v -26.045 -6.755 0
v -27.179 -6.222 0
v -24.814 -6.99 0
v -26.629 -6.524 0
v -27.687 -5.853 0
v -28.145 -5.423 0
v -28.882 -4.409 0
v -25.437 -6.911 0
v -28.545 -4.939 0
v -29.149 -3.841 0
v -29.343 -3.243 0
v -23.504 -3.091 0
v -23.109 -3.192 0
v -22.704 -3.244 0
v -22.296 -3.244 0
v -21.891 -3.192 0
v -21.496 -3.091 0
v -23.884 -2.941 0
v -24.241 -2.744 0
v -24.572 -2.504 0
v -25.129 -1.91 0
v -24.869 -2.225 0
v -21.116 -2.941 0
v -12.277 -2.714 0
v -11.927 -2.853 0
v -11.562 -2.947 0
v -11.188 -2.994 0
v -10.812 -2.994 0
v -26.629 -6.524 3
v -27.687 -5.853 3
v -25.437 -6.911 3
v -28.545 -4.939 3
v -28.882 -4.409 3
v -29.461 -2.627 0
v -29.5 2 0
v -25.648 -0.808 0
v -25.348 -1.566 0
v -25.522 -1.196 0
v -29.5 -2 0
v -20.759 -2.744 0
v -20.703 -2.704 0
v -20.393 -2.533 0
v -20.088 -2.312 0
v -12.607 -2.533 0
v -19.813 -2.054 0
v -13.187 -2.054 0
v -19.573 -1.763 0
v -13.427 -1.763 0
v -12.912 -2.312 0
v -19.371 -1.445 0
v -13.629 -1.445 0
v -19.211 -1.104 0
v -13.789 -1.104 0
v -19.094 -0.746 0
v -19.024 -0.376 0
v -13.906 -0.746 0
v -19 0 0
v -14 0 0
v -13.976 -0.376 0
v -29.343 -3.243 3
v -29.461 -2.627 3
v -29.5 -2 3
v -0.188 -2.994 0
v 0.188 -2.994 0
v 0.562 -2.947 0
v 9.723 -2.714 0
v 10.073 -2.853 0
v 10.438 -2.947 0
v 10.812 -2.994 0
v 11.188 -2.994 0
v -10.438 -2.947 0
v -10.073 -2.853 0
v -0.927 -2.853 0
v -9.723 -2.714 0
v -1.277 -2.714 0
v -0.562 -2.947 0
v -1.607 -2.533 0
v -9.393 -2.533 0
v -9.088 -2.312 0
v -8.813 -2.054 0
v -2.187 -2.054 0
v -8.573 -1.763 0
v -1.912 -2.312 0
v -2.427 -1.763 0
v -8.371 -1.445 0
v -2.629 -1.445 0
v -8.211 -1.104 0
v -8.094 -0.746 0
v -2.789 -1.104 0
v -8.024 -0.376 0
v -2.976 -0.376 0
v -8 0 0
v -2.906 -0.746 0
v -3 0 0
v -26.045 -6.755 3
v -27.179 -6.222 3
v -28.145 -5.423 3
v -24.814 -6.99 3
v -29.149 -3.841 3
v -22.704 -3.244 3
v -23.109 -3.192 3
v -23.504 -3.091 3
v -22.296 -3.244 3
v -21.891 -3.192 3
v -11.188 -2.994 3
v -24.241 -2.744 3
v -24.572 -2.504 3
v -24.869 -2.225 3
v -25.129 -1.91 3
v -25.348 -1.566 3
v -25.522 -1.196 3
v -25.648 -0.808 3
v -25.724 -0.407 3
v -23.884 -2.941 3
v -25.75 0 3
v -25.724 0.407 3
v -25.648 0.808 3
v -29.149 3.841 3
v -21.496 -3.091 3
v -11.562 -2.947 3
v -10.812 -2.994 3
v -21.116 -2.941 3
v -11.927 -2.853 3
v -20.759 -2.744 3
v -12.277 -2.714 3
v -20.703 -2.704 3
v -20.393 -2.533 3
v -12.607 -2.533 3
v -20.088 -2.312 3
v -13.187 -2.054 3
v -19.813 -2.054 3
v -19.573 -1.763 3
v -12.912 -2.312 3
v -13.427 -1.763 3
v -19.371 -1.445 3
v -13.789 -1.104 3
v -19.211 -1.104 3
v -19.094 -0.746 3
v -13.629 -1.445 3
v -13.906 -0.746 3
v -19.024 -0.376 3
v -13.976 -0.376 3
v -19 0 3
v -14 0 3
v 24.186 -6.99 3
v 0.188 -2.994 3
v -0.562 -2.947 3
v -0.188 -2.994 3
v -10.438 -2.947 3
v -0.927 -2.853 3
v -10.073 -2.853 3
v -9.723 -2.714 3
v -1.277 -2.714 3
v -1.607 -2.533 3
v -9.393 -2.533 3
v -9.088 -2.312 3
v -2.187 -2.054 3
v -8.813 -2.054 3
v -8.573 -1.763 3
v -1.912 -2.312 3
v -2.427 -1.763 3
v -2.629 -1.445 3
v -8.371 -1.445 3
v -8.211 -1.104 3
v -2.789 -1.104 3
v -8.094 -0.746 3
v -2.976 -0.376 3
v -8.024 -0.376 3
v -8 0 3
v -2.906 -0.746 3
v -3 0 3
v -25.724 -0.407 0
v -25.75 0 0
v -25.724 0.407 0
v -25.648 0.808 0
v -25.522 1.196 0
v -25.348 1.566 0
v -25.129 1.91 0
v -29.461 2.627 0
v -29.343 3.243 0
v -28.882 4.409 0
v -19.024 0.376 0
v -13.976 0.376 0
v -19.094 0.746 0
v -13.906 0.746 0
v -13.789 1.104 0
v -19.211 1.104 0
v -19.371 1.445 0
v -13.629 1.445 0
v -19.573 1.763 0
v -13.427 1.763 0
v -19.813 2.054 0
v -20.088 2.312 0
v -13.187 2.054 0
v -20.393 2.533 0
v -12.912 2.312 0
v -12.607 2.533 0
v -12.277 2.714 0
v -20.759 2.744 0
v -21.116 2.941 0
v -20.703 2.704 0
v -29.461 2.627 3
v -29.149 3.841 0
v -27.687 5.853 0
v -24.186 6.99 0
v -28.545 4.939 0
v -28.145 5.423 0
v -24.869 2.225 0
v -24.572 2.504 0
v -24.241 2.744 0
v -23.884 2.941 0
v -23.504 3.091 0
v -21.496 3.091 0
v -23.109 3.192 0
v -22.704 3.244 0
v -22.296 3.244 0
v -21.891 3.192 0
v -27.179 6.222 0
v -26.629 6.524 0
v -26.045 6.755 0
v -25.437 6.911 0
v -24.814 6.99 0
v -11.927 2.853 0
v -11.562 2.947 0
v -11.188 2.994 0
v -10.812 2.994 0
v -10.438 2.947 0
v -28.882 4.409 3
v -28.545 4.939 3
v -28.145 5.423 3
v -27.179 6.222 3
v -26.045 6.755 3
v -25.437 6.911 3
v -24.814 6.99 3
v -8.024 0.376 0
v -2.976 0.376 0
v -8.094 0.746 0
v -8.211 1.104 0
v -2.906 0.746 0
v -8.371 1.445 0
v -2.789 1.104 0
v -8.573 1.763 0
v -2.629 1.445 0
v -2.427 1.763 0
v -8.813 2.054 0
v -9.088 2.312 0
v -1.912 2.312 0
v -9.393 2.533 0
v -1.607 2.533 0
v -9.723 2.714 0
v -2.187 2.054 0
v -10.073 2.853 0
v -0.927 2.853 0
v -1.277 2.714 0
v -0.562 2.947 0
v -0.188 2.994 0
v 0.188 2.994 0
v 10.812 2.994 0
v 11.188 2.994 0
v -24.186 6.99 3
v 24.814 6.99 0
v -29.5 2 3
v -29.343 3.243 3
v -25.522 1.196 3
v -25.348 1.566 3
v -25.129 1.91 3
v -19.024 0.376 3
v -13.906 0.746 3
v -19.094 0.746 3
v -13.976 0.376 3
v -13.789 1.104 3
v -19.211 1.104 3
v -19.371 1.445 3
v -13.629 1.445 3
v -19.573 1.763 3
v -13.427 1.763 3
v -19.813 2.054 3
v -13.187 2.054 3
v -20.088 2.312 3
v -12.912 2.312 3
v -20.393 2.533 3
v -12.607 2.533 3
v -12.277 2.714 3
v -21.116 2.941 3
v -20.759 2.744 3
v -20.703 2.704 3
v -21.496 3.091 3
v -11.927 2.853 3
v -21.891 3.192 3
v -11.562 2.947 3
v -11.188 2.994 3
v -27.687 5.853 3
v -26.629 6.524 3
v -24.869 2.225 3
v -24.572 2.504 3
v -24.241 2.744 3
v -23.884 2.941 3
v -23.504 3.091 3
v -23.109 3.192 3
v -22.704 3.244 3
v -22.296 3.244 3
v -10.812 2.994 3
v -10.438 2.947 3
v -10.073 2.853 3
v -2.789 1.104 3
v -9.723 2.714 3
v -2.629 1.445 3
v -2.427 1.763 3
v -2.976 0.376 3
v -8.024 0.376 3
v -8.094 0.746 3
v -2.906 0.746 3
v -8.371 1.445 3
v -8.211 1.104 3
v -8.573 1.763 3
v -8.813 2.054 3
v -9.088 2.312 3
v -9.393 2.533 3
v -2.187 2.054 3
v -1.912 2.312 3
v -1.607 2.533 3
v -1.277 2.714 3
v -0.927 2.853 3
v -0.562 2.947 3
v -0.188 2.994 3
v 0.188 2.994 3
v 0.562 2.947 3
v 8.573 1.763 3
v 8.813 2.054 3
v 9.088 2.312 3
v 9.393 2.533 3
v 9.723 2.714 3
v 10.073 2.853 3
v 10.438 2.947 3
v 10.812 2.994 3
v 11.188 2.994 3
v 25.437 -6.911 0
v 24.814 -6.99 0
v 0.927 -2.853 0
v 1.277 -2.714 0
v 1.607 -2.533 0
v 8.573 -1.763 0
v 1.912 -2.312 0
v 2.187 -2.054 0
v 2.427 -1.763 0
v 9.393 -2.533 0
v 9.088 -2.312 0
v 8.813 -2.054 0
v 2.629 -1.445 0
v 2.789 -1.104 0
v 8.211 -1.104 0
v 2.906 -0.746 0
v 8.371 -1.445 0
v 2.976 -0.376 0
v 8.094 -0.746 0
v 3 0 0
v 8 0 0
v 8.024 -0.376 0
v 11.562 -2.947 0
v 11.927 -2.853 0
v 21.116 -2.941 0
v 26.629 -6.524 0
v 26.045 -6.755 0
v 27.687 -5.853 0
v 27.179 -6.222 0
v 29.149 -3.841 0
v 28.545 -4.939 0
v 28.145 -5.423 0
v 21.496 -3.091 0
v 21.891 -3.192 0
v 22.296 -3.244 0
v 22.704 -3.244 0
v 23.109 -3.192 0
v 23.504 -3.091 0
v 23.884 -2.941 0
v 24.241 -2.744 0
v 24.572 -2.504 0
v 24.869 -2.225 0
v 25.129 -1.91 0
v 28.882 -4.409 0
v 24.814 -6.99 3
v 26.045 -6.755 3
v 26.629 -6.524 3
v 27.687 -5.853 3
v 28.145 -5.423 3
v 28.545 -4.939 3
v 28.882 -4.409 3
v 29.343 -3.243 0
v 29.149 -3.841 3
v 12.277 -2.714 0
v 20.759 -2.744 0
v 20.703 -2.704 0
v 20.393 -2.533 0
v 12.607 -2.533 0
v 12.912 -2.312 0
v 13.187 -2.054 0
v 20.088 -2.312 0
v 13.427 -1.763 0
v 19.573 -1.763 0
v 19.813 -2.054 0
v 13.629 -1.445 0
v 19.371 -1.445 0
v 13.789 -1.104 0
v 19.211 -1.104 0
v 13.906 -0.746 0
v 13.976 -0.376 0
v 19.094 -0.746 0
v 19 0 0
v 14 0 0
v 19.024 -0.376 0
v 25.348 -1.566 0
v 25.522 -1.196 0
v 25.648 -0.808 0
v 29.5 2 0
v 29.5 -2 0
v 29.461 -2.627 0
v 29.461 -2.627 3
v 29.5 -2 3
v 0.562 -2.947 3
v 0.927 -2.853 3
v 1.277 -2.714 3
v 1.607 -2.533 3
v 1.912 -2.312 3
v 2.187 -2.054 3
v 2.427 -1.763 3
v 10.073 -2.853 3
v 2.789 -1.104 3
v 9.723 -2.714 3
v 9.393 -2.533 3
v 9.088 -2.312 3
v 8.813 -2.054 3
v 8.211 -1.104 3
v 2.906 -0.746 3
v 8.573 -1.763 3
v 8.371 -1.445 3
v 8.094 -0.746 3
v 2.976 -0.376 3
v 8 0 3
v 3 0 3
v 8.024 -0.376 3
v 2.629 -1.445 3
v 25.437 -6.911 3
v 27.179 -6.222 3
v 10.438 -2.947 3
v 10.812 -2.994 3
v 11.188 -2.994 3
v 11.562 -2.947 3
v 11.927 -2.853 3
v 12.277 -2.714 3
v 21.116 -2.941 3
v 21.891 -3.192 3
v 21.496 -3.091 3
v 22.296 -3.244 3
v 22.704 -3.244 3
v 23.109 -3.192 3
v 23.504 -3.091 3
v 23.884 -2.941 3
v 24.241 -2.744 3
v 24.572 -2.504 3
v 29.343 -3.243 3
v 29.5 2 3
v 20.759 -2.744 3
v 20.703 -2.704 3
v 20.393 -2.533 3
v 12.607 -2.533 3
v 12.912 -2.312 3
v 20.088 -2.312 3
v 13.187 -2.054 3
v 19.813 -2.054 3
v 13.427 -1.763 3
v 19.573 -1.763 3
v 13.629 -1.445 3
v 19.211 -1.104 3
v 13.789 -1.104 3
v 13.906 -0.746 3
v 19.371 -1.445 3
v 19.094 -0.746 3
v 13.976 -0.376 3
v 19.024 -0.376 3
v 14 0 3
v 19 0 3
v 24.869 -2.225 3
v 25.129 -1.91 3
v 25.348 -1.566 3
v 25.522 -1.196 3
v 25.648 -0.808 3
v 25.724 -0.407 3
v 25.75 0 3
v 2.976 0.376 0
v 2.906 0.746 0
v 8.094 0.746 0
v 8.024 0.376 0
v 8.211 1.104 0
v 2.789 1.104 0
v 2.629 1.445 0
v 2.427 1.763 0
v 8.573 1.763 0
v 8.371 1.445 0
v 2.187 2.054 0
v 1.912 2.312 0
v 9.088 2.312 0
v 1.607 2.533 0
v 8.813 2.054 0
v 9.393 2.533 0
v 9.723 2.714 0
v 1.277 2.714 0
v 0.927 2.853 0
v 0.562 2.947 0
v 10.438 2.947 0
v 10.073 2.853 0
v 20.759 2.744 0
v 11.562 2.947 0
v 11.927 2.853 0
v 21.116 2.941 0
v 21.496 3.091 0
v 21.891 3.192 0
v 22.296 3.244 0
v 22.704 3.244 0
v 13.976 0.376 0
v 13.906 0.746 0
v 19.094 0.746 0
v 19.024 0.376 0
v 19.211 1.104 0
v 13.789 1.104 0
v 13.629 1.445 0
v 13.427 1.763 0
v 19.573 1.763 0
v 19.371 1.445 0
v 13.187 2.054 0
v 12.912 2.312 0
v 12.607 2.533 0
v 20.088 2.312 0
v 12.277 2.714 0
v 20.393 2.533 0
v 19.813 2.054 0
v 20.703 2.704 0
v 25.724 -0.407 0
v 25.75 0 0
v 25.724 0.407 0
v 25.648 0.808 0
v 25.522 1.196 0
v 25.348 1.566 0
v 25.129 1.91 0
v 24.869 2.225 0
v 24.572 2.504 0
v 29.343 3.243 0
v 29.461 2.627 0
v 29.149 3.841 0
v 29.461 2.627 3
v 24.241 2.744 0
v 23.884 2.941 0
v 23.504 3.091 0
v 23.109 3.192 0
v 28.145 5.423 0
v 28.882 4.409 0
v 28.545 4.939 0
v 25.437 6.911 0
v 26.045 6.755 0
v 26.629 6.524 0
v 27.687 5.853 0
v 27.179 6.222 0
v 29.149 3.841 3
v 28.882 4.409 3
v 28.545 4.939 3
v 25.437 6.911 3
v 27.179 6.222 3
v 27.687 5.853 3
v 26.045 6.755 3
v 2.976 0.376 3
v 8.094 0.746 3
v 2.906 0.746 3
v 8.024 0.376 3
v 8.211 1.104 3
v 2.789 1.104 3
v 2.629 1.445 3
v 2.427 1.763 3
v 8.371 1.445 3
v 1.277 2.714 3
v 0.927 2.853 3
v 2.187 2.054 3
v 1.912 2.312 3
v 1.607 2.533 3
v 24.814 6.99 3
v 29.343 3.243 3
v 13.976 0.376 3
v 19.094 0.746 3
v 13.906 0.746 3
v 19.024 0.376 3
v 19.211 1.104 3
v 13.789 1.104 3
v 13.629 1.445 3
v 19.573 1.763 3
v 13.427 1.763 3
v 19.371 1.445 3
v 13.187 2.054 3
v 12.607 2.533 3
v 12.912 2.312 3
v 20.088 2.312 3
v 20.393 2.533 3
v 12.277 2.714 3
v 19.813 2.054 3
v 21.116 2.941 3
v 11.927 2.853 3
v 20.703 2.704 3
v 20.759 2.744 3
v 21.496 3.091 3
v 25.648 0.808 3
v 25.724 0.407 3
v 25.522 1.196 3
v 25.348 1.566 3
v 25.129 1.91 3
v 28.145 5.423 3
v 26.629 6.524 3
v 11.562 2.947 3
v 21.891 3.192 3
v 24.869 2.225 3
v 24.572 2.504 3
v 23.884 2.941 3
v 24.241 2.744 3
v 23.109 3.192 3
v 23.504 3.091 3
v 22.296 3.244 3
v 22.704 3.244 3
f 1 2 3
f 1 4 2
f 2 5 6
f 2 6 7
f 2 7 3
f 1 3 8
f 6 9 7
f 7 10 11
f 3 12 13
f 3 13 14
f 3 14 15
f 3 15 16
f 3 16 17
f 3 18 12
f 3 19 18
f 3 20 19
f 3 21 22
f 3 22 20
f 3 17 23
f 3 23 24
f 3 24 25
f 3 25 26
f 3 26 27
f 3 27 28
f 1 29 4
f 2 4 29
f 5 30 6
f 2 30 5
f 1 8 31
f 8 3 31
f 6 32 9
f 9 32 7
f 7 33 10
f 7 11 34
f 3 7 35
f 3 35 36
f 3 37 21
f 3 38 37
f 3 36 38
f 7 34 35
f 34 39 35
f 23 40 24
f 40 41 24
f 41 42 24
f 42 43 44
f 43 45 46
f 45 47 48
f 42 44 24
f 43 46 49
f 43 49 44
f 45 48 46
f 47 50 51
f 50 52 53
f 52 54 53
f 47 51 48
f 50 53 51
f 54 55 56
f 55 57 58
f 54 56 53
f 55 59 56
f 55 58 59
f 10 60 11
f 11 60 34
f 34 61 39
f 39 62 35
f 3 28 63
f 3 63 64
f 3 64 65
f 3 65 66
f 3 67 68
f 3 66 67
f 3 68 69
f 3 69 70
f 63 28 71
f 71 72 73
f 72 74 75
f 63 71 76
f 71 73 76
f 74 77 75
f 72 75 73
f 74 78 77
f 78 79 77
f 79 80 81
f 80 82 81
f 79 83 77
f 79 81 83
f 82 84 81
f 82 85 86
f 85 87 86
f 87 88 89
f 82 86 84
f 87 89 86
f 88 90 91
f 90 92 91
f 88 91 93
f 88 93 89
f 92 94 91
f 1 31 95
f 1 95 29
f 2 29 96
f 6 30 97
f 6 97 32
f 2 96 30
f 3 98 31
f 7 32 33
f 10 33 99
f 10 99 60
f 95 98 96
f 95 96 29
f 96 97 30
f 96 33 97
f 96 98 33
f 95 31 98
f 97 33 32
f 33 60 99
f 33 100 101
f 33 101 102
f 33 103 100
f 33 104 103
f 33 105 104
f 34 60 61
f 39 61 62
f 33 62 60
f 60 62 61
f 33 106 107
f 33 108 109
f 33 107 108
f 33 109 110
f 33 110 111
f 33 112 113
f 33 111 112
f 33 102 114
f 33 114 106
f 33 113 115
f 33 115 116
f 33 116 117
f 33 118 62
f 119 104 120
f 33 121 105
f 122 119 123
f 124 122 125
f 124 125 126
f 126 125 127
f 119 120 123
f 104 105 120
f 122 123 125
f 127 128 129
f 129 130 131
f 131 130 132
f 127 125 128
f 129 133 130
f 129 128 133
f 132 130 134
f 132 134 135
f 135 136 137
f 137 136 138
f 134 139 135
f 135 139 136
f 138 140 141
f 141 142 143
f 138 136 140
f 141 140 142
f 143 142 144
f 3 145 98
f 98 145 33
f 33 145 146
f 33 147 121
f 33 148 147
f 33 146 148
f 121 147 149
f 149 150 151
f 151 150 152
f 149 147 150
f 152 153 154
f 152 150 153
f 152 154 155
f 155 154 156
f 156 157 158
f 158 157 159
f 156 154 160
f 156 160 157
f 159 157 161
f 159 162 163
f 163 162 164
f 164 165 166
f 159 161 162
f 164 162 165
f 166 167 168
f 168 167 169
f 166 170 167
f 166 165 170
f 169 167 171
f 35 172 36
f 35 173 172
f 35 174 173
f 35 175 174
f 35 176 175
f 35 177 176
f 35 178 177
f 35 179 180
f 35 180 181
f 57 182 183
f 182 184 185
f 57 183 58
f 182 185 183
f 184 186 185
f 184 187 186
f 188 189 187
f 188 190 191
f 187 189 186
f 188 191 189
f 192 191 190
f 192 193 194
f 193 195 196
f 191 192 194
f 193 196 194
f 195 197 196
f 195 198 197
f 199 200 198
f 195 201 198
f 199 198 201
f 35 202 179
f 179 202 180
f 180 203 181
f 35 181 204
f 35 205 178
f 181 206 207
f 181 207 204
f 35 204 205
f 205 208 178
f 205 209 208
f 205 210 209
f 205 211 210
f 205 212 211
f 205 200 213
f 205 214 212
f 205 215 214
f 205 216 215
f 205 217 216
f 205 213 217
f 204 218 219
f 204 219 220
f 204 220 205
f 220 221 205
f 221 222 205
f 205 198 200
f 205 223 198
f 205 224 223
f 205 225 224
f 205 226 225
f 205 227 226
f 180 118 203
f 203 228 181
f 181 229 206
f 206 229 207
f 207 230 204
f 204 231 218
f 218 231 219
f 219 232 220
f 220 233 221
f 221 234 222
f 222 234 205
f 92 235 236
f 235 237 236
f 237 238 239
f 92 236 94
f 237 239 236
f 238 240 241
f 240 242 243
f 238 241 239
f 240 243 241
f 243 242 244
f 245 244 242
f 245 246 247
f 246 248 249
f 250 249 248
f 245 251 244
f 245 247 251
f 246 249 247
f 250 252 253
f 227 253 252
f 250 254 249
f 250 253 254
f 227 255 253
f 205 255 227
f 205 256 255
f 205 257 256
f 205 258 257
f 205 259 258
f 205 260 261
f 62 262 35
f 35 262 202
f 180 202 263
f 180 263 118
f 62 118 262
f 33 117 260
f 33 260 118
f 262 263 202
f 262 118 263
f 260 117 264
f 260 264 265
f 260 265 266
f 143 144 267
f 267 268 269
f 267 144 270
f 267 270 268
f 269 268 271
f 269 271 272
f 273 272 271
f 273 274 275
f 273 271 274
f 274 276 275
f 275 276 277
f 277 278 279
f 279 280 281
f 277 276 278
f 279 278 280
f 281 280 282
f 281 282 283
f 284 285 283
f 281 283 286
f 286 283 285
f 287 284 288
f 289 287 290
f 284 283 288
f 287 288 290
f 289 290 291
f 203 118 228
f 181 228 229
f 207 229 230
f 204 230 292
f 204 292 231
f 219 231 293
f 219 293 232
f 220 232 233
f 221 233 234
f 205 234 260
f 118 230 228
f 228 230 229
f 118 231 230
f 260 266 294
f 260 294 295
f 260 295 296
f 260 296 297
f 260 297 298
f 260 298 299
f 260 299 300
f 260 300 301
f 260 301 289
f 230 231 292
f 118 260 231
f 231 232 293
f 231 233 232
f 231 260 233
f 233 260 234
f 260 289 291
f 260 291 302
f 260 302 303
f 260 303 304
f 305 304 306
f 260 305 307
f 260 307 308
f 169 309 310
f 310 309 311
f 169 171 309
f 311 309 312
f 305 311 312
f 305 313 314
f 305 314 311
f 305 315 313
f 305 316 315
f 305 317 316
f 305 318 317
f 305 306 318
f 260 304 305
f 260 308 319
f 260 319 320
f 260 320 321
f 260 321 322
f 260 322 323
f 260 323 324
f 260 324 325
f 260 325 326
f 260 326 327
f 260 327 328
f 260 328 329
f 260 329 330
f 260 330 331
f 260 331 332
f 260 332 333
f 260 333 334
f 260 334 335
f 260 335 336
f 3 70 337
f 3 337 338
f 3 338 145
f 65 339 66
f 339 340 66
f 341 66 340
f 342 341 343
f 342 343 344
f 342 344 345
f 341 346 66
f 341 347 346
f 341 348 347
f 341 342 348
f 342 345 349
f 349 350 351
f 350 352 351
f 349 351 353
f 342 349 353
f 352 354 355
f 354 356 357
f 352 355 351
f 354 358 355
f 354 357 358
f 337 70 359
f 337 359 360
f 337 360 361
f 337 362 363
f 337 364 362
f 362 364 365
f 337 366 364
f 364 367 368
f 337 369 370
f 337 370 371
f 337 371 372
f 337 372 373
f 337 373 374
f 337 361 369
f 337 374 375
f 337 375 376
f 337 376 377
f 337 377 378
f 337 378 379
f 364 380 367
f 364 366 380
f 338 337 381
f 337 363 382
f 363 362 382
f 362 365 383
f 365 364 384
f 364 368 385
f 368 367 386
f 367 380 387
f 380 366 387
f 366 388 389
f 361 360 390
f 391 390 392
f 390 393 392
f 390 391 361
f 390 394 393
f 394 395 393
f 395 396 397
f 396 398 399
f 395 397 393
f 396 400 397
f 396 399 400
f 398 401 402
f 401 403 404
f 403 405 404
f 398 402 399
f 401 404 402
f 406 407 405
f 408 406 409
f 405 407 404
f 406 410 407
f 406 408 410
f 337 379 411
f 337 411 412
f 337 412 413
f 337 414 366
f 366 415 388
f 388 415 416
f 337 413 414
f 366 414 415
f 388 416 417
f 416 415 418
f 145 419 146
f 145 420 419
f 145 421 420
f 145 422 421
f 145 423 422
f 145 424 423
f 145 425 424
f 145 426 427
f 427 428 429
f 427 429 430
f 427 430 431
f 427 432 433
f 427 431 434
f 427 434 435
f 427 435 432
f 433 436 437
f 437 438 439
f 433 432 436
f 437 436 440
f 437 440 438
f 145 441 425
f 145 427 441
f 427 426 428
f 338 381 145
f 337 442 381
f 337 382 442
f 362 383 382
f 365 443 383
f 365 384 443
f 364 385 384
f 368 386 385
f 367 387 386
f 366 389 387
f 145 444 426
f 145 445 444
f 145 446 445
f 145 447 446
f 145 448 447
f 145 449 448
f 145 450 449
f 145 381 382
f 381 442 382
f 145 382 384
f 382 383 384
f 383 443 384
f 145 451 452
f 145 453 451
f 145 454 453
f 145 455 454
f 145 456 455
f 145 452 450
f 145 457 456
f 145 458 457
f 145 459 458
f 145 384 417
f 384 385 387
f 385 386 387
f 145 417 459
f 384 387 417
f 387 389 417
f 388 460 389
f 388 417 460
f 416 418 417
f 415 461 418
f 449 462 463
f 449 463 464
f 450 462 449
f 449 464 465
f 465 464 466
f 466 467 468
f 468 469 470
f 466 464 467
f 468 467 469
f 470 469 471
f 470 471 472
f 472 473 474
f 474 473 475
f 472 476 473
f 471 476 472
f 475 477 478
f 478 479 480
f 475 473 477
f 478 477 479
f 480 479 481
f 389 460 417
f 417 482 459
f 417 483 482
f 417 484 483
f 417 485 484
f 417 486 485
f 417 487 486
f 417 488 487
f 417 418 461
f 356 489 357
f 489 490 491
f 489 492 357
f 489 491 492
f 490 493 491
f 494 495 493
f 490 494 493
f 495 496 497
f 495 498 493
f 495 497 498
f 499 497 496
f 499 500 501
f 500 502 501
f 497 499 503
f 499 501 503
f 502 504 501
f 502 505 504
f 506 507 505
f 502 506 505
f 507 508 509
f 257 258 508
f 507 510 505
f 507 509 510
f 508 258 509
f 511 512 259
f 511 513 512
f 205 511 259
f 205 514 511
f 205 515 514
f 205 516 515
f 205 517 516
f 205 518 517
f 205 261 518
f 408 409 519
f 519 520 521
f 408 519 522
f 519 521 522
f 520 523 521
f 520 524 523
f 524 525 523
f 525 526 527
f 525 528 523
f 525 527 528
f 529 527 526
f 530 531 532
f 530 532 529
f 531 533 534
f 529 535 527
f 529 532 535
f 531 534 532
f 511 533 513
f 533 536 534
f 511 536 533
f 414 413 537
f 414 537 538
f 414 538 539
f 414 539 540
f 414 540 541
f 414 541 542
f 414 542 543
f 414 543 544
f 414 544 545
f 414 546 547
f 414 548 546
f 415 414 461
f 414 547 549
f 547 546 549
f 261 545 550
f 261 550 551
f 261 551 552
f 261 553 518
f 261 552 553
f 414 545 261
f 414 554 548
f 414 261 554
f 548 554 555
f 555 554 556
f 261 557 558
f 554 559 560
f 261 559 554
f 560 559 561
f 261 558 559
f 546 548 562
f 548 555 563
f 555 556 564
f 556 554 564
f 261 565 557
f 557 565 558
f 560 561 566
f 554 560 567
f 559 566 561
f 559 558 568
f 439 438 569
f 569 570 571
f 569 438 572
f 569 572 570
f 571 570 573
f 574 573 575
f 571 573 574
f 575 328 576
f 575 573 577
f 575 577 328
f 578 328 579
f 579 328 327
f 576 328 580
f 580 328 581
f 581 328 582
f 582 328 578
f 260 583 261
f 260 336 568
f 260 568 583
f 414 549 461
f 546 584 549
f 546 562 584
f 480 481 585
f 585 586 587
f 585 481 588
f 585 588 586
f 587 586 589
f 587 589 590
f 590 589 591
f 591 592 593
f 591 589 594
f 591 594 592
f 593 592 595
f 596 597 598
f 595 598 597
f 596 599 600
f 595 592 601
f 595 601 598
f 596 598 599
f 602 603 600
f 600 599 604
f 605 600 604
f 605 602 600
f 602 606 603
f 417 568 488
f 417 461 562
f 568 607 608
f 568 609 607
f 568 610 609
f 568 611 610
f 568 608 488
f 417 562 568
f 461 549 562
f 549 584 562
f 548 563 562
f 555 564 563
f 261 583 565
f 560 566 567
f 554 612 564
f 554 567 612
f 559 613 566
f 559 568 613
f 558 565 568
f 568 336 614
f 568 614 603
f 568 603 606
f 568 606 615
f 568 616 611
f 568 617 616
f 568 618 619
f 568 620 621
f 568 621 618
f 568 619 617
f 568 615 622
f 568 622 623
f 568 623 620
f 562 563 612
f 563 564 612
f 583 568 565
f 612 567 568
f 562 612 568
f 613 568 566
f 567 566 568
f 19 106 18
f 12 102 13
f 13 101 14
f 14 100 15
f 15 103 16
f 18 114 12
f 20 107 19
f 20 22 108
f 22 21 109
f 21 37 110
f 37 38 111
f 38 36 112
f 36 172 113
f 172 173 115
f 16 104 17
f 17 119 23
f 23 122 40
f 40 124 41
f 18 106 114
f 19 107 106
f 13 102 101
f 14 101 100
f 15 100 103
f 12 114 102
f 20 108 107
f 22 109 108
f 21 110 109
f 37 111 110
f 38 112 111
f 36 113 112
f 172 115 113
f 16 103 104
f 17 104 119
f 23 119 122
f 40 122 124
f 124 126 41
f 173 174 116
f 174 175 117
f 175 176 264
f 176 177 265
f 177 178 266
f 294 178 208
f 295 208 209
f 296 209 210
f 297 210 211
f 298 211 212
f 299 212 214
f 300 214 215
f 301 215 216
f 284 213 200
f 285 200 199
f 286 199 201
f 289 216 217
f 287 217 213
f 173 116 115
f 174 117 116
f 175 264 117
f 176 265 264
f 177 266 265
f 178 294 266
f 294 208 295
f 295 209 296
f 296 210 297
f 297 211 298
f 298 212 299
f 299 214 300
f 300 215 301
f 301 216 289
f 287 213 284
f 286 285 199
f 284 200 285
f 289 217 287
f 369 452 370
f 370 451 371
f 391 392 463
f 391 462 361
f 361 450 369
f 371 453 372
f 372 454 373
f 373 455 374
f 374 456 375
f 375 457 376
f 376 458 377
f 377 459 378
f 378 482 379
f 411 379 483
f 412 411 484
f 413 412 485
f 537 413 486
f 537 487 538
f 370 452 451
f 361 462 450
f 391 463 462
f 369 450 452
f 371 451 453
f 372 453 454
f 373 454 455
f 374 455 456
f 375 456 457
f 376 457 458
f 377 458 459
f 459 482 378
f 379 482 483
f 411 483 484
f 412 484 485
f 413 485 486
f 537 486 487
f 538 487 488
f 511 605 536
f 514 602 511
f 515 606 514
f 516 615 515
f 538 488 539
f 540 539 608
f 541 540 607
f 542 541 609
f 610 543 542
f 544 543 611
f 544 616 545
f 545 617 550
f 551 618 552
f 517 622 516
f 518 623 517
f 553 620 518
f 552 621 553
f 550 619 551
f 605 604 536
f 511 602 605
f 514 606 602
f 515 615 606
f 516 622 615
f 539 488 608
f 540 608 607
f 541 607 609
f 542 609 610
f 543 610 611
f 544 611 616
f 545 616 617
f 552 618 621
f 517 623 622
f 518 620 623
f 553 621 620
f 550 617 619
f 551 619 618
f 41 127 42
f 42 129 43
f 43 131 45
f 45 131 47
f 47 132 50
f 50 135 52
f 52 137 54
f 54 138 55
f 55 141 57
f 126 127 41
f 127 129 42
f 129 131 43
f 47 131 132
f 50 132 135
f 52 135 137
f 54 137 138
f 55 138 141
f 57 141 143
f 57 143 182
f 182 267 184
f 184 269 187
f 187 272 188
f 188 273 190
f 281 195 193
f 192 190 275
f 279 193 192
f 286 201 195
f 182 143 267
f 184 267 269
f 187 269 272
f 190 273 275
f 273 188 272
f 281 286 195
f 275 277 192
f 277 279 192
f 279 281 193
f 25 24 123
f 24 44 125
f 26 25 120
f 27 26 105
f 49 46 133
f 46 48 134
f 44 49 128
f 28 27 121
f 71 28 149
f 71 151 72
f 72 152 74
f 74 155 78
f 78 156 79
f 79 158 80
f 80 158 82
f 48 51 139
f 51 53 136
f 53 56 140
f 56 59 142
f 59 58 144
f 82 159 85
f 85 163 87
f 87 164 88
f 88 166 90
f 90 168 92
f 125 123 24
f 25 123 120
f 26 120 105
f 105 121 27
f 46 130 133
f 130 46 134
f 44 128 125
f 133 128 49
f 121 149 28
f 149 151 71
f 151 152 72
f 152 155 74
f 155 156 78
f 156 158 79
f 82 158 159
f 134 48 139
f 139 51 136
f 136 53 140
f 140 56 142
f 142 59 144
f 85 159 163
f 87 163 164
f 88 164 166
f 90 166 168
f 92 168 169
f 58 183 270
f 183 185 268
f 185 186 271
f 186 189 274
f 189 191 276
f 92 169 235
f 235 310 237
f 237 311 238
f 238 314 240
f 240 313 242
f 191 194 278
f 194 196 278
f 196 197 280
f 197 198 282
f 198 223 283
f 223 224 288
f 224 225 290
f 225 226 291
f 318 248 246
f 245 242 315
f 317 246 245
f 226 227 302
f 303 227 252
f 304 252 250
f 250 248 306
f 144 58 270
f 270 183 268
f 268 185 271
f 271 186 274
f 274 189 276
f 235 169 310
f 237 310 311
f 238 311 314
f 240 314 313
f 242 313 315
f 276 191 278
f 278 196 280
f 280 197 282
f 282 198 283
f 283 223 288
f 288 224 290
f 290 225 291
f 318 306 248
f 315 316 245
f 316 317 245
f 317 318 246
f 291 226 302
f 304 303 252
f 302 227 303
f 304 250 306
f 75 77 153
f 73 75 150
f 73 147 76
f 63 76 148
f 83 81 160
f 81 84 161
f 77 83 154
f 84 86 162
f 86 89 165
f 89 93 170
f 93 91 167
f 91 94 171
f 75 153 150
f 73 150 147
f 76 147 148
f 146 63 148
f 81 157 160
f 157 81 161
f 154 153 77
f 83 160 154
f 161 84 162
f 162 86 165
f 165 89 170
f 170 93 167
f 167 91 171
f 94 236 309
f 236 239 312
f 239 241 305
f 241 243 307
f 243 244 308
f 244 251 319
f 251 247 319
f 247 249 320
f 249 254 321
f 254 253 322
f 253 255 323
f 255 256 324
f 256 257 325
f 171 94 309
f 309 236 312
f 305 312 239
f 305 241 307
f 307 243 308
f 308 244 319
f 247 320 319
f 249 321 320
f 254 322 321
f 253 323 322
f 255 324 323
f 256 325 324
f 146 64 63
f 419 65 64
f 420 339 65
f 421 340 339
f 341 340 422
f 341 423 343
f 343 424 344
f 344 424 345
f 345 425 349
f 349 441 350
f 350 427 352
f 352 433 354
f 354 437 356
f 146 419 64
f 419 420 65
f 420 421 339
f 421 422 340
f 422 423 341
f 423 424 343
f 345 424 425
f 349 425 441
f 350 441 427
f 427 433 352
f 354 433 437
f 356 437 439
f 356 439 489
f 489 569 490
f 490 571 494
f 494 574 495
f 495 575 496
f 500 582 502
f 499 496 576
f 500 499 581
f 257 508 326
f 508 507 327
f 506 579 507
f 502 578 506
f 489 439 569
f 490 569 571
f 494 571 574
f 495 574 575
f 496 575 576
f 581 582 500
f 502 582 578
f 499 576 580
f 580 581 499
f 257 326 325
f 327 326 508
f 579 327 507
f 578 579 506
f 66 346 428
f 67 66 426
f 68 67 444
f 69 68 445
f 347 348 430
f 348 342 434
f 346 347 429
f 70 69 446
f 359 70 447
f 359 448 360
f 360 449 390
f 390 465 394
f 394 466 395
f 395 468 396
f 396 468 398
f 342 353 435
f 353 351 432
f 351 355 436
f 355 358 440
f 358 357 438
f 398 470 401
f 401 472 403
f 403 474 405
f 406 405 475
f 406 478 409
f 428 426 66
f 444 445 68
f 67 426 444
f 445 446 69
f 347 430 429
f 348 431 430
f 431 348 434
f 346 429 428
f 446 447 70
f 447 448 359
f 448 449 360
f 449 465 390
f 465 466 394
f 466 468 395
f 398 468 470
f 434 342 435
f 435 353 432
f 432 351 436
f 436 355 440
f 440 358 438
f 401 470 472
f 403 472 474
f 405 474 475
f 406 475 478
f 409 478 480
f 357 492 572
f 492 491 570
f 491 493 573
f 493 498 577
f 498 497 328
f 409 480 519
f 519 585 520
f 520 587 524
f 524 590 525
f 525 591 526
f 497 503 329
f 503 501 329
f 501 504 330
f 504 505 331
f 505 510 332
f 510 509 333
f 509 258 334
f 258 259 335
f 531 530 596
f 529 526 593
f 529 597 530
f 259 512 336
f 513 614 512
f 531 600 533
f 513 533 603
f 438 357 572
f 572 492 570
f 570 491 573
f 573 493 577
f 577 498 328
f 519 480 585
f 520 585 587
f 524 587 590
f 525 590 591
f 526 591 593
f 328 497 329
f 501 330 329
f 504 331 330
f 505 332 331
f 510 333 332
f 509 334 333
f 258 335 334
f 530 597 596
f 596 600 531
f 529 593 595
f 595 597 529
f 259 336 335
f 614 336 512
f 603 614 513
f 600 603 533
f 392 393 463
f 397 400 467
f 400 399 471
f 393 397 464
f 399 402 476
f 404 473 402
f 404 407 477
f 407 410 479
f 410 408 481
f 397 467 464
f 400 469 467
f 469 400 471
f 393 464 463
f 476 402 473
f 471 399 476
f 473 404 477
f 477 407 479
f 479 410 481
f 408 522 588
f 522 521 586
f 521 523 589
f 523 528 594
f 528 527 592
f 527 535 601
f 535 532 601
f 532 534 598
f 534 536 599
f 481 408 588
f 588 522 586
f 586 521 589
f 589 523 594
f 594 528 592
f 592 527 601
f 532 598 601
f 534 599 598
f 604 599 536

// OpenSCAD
$fn = 50;

difference() {
	union() {
		hull() {
			translate(v = [-24.5, 2.0, 0]) {
				cylinder(h = 3, r = 5);
			}
			translate(v = [24.5, 2.0, 0]) {
				cylinder(h = 3, r = 5);
			}
			translate(v = [-24.5, -2.0, 0]) {
				cylinder(h = 3, r = 5);
			}
			translate(v = [24.5, -2.0, 0]) {
				cylinder(h = 3, r = 5);
			}
		}
	}
	union() {
		translate(v = [-22.5, 0.0, -100.0]) {
			cylinder(h = 200, r = 3.25);
		}
		translate(v = [22.5, 0.0, -100.0]) {
			cylinder(h = 200, r = 3.25);
		}
		translate(v = [-22.5, 0.0, -100.0]) {
			cylinder(h = 200, r = 1.8);
		}
		translate(v = [22.5, 0.0, -100.0]) {
			cylinder(h = 200, r = 1.8);
		}
		translate(v = [-22.0, 0, 0.0]) {
			cylinder(h = 3, r = 3.0);
		}
		translate(v = [-11.0, 0, 0.0]) {
			cylinder(h = 3, r = 3.0);
		}
		cylinder(h = 3, r = 3.0);
		translate(v = [11.0, 0, 0.0]) {
			cylinder(h = 3, r = 3.0);
		}
		translate(v = [22.0, 0, 0.0]) {
			cylinder(h = 3, r = 3.0);
		}
	}
}
